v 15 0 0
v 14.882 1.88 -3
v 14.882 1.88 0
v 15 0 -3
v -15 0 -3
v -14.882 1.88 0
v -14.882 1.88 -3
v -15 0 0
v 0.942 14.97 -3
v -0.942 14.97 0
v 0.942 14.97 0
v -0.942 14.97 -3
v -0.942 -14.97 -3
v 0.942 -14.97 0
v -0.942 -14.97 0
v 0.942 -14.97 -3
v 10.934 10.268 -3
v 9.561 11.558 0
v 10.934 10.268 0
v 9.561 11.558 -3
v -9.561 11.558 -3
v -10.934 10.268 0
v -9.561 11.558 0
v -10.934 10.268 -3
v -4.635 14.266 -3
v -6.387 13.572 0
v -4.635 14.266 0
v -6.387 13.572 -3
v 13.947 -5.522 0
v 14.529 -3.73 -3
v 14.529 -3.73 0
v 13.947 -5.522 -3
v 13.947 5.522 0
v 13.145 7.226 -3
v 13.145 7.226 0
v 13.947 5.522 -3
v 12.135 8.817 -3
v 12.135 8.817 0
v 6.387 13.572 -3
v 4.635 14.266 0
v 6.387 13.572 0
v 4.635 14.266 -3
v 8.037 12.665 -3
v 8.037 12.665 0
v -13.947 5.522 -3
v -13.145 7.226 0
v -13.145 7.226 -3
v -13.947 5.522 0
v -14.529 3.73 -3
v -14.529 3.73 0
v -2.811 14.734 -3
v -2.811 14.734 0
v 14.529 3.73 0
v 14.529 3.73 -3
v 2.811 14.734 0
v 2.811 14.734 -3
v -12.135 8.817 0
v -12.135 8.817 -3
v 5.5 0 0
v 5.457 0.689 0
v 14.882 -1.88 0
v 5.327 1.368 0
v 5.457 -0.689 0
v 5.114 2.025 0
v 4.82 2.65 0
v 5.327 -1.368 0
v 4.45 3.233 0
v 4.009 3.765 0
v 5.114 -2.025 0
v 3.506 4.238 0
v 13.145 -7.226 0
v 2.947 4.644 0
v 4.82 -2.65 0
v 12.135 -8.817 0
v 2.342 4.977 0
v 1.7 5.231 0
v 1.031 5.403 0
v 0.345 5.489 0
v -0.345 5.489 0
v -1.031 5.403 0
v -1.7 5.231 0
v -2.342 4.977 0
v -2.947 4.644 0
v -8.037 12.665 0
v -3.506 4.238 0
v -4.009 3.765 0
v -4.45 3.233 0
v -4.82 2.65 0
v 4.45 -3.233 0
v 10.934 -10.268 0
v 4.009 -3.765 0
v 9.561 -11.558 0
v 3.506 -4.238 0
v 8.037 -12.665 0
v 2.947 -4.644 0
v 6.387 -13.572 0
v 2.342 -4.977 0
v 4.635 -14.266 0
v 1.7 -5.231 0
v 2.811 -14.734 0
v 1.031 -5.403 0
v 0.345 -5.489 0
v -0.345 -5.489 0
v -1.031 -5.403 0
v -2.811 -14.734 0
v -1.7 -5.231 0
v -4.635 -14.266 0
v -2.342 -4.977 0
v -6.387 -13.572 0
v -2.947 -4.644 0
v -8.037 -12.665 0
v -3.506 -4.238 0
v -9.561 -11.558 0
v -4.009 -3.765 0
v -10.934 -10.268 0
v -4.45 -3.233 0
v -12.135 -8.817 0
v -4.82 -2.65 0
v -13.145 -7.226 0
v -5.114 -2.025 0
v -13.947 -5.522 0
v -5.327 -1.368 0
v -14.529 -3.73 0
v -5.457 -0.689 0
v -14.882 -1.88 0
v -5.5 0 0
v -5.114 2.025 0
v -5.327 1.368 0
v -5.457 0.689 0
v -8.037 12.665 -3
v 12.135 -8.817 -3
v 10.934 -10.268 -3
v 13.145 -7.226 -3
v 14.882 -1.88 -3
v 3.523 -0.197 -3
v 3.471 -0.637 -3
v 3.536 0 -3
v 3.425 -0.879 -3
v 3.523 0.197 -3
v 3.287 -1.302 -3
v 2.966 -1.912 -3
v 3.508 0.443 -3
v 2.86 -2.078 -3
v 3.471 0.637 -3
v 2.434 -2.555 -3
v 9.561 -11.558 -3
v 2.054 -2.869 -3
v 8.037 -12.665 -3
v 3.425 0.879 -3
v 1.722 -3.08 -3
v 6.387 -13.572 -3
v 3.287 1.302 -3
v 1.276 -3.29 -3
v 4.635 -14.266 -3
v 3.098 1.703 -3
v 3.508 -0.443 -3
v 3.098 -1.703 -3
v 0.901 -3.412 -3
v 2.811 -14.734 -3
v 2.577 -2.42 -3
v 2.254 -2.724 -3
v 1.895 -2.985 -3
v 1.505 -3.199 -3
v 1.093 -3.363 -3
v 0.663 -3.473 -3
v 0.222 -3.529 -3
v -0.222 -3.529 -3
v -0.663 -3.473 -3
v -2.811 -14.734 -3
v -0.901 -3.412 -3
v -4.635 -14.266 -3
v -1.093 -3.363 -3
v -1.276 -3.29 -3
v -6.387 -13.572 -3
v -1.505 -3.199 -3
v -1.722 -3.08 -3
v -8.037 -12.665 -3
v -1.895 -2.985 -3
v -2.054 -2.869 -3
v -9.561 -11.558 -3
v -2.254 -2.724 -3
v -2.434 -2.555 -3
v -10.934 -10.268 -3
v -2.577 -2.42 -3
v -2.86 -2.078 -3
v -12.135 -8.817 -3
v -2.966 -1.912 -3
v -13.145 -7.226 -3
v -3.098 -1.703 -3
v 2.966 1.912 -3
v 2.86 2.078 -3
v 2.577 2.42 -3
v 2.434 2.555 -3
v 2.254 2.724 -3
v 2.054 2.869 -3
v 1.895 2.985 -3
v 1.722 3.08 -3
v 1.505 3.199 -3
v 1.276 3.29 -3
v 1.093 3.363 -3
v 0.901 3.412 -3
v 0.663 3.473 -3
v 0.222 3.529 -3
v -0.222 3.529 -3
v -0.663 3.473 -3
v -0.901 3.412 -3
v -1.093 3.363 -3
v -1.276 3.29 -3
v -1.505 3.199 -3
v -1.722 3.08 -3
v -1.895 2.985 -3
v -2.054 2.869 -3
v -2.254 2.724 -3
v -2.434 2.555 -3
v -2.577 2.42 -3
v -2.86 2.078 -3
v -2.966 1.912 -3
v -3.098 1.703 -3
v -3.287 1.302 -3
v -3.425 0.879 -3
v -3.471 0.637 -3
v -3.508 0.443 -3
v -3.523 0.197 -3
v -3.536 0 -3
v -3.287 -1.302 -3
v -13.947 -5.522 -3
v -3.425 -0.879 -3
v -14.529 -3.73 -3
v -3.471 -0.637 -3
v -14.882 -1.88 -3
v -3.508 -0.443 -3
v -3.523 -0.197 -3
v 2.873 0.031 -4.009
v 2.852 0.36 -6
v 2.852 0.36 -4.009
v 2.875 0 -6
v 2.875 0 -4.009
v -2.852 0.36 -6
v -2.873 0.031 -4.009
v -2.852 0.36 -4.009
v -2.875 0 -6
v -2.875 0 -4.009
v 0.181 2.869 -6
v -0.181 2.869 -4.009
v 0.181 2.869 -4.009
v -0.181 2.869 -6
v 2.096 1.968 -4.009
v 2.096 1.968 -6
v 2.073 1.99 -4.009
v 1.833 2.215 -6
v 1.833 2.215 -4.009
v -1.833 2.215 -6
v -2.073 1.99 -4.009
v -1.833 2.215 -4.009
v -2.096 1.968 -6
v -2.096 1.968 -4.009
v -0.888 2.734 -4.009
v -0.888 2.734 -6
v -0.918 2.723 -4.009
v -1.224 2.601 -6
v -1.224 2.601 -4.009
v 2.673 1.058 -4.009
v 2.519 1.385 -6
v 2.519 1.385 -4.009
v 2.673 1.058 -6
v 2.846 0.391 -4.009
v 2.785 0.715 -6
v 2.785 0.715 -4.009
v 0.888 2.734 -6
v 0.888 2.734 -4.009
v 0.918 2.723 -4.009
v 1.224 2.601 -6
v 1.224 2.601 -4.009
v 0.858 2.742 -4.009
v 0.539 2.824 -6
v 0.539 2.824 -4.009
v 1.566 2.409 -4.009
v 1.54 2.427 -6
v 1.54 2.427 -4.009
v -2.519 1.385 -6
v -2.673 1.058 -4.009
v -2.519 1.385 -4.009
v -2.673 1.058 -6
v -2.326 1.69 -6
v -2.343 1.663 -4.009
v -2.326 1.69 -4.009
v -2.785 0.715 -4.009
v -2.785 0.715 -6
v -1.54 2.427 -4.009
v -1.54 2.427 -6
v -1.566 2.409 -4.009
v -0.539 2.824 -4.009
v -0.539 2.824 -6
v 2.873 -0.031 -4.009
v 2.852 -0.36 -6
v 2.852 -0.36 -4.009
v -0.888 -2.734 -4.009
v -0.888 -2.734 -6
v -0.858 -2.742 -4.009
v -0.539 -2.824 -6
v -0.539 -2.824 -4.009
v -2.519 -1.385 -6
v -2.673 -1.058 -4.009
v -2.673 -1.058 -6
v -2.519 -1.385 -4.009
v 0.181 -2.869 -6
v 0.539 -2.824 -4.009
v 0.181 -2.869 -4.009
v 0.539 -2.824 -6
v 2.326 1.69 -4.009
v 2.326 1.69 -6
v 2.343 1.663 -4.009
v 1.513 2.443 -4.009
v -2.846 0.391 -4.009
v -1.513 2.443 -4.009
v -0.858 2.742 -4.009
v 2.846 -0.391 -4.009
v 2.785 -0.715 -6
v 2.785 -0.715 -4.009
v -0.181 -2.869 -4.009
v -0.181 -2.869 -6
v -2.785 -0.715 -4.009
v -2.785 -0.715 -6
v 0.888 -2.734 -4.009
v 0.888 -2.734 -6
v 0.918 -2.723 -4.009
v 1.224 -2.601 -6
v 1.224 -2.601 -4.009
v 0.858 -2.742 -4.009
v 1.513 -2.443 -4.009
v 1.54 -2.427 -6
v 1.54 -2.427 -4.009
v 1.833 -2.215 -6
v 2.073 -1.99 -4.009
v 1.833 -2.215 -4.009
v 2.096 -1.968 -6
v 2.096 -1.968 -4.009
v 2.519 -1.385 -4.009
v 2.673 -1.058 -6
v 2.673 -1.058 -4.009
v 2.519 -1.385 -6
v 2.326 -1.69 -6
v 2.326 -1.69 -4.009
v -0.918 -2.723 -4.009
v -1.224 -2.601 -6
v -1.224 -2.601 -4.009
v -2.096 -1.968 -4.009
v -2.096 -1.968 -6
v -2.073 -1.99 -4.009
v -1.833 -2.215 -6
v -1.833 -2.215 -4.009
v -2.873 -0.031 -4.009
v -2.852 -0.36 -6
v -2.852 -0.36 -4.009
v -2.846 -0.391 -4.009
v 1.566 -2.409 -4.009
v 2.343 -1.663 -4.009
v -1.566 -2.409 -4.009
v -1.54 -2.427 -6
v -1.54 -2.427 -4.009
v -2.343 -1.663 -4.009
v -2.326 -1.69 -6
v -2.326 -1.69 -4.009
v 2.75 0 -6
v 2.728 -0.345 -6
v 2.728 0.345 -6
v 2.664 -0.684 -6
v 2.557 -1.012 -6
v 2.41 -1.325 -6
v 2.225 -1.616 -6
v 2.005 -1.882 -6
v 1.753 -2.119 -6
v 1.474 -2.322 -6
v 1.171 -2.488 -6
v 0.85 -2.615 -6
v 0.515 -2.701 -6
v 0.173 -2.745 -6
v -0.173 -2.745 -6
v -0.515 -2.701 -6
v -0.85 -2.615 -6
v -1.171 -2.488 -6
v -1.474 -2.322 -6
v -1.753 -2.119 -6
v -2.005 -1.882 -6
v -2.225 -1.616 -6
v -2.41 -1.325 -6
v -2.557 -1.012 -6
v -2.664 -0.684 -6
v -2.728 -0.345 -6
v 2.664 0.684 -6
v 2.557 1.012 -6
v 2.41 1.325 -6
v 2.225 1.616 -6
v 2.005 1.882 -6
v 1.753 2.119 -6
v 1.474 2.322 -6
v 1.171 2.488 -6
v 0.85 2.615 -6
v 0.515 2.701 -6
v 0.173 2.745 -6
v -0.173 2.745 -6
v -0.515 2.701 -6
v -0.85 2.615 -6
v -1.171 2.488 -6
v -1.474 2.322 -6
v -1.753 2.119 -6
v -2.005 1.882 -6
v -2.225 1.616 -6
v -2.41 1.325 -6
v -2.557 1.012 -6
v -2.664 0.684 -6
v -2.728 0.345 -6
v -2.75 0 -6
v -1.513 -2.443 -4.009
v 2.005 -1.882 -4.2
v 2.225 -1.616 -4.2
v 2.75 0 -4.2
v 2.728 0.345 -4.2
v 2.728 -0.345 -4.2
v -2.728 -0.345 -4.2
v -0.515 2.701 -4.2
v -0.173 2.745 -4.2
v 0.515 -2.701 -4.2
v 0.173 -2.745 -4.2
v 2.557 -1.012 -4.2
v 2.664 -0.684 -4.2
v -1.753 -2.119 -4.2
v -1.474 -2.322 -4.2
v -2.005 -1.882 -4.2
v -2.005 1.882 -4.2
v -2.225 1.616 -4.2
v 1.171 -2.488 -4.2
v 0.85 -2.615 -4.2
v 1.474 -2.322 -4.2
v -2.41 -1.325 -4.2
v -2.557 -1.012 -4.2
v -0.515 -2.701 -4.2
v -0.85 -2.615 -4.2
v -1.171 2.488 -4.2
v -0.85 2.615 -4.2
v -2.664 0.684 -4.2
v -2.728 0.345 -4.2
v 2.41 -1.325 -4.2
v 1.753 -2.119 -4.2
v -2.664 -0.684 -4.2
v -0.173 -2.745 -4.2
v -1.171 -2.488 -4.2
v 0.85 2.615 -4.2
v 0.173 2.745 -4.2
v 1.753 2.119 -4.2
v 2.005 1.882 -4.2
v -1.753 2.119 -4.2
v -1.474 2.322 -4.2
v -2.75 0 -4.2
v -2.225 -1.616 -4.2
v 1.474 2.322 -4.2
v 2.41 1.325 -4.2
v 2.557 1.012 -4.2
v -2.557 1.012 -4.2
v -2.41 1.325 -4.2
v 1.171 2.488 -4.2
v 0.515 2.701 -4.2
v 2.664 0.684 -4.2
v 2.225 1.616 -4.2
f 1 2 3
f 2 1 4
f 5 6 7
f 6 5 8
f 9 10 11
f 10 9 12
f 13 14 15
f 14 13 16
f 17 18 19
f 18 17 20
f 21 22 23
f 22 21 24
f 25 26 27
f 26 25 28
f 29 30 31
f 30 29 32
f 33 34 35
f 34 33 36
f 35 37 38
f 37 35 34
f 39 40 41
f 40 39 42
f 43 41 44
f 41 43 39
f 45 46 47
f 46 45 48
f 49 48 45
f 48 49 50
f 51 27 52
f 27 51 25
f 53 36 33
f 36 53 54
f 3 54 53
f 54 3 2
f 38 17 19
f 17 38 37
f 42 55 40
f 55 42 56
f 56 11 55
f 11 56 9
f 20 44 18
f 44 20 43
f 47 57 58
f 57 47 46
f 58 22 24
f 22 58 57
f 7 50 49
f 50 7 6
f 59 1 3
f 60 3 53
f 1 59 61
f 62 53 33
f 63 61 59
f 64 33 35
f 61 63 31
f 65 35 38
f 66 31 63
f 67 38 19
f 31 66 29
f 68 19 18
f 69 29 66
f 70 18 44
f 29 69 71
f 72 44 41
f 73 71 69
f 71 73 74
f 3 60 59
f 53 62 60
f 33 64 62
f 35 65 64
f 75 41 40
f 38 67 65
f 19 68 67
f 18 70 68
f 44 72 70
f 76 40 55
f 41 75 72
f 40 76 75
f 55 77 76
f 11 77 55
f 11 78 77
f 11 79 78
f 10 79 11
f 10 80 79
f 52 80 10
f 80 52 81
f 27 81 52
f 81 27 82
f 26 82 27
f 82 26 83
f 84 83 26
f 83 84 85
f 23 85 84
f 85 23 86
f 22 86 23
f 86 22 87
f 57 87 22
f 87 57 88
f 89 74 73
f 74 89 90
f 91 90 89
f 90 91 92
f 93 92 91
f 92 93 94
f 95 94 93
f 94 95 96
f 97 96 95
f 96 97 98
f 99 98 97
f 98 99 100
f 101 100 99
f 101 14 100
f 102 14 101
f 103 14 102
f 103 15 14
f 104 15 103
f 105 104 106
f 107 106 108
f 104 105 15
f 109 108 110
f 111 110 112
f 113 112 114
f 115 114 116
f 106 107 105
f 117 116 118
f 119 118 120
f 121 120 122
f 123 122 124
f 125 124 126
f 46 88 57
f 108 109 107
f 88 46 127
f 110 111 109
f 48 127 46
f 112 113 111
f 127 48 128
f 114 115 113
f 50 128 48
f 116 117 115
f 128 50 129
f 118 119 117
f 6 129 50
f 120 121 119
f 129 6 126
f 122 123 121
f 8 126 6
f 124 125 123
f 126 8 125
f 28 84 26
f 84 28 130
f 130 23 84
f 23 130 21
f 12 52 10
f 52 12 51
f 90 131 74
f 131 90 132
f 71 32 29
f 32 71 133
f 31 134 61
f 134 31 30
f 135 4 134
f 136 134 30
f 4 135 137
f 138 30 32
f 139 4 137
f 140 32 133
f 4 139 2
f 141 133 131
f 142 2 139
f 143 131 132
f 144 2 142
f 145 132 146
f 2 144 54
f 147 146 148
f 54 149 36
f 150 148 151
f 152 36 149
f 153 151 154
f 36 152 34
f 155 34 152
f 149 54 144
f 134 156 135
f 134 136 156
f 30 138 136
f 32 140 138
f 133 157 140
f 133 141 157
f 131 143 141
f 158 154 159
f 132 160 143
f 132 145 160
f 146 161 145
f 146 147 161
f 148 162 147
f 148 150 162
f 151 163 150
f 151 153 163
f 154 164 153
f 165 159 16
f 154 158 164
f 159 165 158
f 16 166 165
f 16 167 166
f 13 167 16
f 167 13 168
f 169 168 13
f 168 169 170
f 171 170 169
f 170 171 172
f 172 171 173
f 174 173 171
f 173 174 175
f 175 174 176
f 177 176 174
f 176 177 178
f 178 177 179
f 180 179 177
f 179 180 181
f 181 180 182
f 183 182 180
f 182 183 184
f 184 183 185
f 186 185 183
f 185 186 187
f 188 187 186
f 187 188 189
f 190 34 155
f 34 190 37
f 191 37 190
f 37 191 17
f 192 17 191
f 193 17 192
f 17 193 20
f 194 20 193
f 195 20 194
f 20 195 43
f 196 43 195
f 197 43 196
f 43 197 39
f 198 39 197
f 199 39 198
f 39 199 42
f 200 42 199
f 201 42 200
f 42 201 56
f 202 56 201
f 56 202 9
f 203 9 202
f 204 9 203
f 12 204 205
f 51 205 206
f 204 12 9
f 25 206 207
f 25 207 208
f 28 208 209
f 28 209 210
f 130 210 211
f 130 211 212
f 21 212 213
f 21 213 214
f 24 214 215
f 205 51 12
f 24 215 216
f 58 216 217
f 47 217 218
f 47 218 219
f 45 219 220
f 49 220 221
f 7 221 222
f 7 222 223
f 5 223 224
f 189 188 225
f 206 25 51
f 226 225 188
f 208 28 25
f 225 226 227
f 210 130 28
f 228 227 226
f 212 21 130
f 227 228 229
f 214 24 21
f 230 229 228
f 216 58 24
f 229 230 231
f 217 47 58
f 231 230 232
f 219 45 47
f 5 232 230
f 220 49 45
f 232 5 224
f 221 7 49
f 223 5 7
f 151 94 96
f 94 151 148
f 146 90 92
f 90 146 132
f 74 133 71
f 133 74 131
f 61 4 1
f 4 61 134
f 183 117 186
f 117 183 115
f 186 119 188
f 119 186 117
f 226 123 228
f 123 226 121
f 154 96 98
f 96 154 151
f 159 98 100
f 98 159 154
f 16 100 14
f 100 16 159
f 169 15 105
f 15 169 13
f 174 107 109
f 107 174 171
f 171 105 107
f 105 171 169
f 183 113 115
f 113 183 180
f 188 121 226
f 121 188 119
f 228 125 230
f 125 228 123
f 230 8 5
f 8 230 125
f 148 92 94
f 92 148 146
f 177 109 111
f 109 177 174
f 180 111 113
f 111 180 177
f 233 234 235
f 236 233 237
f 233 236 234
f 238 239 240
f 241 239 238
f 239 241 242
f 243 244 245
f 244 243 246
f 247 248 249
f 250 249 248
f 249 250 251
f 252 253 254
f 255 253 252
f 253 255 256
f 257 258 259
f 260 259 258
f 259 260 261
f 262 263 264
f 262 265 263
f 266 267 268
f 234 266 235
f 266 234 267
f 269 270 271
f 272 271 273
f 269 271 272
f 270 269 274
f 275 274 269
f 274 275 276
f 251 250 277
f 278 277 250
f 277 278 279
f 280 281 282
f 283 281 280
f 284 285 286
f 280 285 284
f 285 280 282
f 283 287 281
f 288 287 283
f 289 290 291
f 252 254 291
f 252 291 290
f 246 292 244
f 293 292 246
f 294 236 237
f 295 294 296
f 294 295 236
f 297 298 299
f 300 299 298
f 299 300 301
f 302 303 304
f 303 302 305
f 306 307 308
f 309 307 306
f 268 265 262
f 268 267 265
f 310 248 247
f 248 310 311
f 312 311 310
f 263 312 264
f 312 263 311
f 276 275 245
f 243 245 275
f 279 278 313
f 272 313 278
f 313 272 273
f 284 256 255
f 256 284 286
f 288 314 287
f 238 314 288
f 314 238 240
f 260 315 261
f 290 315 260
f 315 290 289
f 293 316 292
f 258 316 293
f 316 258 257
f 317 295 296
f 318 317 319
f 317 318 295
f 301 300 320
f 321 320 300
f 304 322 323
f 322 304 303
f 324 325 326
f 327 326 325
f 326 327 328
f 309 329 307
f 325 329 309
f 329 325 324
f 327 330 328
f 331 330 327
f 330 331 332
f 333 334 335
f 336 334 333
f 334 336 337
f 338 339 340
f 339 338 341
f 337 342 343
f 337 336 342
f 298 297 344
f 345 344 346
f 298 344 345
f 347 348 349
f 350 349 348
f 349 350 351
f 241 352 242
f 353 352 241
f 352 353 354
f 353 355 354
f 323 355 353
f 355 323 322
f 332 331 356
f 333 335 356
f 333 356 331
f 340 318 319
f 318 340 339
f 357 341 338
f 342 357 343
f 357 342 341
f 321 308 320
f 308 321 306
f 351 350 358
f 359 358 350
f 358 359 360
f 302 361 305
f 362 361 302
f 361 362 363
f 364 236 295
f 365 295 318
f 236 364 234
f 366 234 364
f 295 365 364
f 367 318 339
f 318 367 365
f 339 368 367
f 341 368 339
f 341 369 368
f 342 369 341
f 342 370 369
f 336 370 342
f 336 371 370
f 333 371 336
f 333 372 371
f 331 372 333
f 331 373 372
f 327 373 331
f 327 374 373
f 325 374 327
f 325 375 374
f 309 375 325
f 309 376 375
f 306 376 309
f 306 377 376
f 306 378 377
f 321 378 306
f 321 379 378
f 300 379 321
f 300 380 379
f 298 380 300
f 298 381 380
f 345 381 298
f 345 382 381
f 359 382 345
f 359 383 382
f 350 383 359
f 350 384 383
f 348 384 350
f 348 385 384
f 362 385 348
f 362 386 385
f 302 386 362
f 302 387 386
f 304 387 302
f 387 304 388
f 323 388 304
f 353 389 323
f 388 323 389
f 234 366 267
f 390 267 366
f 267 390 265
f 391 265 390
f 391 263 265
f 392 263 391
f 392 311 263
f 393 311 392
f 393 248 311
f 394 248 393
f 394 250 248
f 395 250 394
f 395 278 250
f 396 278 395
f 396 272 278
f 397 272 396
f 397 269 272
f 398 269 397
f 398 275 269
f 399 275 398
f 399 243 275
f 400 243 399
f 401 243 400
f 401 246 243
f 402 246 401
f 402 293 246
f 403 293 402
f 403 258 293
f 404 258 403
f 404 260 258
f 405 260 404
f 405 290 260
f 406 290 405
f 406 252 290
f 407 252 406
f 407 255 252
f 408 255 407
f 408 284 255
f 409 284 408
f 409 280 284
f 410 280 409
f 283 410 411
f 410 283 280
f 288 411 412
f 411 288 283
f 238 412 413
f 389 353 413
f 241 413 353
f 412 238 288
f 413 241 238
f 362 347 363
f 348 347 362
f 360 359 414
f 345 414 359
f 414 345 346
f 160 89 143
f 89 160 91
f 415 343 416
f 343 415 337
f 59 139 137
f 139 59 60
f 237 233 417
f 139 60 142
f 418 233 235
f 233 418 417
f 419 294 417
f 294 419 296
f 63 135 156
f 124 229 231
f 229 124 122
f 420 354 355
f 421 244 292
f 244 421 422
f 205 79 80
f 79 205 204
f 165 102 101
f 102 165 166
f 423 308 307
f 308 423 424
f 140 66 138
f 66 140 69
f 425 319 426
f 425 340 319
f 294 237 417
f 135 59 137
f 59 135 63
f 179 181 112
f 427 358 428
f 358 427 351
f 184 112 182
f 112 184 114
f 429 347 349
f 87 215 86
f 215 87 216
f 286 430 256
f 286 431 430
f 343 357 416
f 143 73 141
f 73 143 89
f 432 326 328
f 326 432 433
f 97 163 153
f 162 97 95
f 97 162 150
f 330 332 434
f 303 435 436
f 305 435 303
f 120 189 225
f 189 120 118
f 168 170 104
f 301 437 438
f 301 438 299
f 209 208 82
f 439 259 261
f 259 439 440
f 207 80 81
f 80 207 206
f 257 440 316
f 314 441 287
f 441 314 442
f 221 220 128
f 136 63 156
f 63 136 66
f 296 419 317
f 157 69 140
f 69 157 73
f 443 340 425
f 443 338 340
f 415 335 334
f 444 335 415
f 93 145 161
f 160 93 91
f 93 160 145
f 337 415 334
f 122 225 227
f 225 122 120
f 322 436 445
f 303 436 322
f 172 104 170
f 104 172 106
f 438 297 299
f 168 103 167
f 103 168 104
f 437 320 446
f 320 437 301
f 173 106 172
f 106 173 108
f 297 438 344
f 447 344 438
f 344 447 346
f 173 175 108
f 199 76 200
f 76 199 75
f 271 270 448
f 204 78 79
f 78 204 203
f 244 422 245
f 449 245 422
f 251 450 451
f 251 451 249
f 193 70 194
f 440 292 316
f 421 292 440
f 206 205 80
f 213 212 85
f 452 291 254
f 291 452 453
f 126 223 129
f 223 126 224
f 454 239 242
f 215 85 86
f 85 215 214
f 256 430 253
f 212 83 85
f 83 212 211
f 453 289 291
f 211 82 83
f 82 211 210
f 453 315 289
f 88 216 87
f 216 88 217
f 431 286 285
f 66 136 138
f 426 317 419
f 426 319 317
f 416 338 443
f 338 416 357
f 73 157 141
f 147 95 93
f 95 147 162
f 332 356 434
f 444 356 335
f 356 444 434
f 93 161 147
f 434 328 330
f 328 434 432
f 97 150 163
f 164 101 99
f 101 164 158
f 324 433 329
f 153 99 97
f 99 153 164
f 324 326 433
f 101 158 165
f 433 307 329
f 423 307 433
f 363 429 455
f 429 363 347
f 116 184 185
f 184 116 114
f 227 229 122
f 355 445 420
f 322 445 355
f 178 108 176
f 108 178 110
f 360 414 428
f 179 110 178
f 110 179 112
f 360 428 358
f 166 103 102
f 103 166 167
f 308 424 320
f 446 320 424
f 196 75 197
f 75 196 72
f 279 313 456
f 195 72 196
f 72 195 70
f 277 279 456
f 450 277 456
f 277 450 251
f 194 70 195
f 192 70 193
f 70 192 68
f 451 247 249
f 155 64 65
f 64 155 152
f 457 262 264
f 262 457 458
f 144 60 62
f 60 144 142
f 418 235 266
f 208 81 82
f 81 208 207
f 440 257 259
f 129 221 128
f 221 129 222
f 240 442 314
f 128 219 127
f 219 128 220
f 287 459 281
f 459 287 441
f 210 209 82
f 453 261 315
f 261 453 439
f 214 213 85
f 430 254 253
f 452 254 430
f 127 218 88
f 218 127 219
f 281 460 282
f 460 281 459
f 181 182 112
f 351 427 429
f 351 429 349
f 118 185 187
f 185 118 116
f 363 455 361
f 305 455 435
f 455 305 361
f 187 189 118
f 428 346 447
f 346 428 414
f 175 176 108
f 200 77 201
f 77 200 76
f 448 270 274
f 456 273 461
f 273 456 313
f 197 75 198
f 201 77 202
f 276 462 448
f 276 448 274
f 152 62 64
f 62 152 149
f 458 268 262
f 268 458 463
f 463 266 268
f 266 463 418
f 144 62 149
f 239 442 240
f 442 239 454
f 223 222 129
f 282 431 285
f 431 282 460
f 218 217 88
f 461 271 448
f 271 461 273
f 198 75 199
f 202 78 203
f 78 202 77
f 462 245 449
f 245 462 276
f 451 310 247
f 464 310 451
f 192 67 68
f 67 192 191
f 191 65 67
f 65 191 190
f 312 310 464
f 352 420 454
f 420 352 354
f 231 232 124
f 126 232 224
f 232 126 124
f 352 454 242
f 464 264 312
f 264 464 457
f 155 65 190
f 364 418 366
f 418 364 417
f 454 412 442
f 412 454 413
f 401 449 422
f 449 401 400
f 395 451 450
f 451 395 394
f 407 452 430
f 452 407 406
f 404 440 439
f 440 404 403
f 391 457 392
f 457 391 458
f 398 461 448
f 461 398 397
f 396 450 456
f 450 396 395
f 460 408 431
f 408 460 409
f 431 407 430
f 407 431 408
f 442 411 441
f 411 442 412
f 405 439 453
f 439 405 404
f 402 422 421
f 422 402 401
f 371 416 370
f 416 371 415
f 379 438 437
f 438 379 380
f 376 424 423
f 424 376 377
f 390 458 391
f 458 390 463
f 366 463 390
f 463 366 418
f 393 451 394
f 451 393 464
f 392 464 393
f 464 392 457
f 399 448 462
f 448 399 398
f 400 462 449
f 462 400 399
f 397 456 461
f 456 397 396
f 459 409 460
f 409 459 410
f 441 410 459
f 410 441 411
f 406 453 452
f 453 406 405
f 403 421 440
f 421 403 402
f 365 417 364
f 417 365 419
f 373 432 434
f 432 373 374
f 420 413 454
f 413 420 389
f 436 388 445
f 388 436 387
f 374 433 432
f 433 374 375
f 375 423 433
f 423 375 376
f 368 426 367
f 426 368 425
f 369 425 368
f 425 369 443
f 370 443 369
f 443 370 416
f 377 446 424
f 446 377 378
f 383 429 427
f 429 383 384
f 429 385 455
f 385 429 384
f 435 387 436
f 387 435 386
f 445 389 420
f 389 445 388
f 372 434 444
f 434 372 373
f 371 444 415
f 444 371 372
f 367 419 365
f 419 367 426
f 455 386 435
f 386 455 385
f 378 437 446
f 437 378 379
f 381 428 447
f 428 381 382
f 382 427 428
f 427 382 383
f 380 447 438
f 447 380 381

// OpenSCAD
$fn = 50;


difference() {
	union() {
		translate(v = [0, 0, -3.0000000000]) {
			cylinder(h = 3, r = 15.0000000000);
		}
		translate(v = [0, 0, -6.0000000000]) {
			cylinder(h = 6, r = 2.8750000000);
		}
	}
	union() {
		translate(v = [0, 0, 0]) {
			rotate(a = [0, 0, 0]) {
				difference() {
					union() {
						translate(v = [0, 0, -6.0000000000]) {
							cylinder(h = 6, r = 2.2500000000);
						}
						translate(v = [0, 0, -4.2000000000]) {
							cylinder(h = 4.2000000000, r1 = 2.7500000000, r2 = 5.5000000000);
						}
						translate(v = [0, 0, -6.0000000000]) {
							cylinder(h = 6, r = 2.7500000000);
						}
						translate(v = [0, 0, -6.0000000000]) {
							cylinder(h = 6, r = 2.2500000000);
						}
					}
					union();
				}
			}
		}
	}
}
